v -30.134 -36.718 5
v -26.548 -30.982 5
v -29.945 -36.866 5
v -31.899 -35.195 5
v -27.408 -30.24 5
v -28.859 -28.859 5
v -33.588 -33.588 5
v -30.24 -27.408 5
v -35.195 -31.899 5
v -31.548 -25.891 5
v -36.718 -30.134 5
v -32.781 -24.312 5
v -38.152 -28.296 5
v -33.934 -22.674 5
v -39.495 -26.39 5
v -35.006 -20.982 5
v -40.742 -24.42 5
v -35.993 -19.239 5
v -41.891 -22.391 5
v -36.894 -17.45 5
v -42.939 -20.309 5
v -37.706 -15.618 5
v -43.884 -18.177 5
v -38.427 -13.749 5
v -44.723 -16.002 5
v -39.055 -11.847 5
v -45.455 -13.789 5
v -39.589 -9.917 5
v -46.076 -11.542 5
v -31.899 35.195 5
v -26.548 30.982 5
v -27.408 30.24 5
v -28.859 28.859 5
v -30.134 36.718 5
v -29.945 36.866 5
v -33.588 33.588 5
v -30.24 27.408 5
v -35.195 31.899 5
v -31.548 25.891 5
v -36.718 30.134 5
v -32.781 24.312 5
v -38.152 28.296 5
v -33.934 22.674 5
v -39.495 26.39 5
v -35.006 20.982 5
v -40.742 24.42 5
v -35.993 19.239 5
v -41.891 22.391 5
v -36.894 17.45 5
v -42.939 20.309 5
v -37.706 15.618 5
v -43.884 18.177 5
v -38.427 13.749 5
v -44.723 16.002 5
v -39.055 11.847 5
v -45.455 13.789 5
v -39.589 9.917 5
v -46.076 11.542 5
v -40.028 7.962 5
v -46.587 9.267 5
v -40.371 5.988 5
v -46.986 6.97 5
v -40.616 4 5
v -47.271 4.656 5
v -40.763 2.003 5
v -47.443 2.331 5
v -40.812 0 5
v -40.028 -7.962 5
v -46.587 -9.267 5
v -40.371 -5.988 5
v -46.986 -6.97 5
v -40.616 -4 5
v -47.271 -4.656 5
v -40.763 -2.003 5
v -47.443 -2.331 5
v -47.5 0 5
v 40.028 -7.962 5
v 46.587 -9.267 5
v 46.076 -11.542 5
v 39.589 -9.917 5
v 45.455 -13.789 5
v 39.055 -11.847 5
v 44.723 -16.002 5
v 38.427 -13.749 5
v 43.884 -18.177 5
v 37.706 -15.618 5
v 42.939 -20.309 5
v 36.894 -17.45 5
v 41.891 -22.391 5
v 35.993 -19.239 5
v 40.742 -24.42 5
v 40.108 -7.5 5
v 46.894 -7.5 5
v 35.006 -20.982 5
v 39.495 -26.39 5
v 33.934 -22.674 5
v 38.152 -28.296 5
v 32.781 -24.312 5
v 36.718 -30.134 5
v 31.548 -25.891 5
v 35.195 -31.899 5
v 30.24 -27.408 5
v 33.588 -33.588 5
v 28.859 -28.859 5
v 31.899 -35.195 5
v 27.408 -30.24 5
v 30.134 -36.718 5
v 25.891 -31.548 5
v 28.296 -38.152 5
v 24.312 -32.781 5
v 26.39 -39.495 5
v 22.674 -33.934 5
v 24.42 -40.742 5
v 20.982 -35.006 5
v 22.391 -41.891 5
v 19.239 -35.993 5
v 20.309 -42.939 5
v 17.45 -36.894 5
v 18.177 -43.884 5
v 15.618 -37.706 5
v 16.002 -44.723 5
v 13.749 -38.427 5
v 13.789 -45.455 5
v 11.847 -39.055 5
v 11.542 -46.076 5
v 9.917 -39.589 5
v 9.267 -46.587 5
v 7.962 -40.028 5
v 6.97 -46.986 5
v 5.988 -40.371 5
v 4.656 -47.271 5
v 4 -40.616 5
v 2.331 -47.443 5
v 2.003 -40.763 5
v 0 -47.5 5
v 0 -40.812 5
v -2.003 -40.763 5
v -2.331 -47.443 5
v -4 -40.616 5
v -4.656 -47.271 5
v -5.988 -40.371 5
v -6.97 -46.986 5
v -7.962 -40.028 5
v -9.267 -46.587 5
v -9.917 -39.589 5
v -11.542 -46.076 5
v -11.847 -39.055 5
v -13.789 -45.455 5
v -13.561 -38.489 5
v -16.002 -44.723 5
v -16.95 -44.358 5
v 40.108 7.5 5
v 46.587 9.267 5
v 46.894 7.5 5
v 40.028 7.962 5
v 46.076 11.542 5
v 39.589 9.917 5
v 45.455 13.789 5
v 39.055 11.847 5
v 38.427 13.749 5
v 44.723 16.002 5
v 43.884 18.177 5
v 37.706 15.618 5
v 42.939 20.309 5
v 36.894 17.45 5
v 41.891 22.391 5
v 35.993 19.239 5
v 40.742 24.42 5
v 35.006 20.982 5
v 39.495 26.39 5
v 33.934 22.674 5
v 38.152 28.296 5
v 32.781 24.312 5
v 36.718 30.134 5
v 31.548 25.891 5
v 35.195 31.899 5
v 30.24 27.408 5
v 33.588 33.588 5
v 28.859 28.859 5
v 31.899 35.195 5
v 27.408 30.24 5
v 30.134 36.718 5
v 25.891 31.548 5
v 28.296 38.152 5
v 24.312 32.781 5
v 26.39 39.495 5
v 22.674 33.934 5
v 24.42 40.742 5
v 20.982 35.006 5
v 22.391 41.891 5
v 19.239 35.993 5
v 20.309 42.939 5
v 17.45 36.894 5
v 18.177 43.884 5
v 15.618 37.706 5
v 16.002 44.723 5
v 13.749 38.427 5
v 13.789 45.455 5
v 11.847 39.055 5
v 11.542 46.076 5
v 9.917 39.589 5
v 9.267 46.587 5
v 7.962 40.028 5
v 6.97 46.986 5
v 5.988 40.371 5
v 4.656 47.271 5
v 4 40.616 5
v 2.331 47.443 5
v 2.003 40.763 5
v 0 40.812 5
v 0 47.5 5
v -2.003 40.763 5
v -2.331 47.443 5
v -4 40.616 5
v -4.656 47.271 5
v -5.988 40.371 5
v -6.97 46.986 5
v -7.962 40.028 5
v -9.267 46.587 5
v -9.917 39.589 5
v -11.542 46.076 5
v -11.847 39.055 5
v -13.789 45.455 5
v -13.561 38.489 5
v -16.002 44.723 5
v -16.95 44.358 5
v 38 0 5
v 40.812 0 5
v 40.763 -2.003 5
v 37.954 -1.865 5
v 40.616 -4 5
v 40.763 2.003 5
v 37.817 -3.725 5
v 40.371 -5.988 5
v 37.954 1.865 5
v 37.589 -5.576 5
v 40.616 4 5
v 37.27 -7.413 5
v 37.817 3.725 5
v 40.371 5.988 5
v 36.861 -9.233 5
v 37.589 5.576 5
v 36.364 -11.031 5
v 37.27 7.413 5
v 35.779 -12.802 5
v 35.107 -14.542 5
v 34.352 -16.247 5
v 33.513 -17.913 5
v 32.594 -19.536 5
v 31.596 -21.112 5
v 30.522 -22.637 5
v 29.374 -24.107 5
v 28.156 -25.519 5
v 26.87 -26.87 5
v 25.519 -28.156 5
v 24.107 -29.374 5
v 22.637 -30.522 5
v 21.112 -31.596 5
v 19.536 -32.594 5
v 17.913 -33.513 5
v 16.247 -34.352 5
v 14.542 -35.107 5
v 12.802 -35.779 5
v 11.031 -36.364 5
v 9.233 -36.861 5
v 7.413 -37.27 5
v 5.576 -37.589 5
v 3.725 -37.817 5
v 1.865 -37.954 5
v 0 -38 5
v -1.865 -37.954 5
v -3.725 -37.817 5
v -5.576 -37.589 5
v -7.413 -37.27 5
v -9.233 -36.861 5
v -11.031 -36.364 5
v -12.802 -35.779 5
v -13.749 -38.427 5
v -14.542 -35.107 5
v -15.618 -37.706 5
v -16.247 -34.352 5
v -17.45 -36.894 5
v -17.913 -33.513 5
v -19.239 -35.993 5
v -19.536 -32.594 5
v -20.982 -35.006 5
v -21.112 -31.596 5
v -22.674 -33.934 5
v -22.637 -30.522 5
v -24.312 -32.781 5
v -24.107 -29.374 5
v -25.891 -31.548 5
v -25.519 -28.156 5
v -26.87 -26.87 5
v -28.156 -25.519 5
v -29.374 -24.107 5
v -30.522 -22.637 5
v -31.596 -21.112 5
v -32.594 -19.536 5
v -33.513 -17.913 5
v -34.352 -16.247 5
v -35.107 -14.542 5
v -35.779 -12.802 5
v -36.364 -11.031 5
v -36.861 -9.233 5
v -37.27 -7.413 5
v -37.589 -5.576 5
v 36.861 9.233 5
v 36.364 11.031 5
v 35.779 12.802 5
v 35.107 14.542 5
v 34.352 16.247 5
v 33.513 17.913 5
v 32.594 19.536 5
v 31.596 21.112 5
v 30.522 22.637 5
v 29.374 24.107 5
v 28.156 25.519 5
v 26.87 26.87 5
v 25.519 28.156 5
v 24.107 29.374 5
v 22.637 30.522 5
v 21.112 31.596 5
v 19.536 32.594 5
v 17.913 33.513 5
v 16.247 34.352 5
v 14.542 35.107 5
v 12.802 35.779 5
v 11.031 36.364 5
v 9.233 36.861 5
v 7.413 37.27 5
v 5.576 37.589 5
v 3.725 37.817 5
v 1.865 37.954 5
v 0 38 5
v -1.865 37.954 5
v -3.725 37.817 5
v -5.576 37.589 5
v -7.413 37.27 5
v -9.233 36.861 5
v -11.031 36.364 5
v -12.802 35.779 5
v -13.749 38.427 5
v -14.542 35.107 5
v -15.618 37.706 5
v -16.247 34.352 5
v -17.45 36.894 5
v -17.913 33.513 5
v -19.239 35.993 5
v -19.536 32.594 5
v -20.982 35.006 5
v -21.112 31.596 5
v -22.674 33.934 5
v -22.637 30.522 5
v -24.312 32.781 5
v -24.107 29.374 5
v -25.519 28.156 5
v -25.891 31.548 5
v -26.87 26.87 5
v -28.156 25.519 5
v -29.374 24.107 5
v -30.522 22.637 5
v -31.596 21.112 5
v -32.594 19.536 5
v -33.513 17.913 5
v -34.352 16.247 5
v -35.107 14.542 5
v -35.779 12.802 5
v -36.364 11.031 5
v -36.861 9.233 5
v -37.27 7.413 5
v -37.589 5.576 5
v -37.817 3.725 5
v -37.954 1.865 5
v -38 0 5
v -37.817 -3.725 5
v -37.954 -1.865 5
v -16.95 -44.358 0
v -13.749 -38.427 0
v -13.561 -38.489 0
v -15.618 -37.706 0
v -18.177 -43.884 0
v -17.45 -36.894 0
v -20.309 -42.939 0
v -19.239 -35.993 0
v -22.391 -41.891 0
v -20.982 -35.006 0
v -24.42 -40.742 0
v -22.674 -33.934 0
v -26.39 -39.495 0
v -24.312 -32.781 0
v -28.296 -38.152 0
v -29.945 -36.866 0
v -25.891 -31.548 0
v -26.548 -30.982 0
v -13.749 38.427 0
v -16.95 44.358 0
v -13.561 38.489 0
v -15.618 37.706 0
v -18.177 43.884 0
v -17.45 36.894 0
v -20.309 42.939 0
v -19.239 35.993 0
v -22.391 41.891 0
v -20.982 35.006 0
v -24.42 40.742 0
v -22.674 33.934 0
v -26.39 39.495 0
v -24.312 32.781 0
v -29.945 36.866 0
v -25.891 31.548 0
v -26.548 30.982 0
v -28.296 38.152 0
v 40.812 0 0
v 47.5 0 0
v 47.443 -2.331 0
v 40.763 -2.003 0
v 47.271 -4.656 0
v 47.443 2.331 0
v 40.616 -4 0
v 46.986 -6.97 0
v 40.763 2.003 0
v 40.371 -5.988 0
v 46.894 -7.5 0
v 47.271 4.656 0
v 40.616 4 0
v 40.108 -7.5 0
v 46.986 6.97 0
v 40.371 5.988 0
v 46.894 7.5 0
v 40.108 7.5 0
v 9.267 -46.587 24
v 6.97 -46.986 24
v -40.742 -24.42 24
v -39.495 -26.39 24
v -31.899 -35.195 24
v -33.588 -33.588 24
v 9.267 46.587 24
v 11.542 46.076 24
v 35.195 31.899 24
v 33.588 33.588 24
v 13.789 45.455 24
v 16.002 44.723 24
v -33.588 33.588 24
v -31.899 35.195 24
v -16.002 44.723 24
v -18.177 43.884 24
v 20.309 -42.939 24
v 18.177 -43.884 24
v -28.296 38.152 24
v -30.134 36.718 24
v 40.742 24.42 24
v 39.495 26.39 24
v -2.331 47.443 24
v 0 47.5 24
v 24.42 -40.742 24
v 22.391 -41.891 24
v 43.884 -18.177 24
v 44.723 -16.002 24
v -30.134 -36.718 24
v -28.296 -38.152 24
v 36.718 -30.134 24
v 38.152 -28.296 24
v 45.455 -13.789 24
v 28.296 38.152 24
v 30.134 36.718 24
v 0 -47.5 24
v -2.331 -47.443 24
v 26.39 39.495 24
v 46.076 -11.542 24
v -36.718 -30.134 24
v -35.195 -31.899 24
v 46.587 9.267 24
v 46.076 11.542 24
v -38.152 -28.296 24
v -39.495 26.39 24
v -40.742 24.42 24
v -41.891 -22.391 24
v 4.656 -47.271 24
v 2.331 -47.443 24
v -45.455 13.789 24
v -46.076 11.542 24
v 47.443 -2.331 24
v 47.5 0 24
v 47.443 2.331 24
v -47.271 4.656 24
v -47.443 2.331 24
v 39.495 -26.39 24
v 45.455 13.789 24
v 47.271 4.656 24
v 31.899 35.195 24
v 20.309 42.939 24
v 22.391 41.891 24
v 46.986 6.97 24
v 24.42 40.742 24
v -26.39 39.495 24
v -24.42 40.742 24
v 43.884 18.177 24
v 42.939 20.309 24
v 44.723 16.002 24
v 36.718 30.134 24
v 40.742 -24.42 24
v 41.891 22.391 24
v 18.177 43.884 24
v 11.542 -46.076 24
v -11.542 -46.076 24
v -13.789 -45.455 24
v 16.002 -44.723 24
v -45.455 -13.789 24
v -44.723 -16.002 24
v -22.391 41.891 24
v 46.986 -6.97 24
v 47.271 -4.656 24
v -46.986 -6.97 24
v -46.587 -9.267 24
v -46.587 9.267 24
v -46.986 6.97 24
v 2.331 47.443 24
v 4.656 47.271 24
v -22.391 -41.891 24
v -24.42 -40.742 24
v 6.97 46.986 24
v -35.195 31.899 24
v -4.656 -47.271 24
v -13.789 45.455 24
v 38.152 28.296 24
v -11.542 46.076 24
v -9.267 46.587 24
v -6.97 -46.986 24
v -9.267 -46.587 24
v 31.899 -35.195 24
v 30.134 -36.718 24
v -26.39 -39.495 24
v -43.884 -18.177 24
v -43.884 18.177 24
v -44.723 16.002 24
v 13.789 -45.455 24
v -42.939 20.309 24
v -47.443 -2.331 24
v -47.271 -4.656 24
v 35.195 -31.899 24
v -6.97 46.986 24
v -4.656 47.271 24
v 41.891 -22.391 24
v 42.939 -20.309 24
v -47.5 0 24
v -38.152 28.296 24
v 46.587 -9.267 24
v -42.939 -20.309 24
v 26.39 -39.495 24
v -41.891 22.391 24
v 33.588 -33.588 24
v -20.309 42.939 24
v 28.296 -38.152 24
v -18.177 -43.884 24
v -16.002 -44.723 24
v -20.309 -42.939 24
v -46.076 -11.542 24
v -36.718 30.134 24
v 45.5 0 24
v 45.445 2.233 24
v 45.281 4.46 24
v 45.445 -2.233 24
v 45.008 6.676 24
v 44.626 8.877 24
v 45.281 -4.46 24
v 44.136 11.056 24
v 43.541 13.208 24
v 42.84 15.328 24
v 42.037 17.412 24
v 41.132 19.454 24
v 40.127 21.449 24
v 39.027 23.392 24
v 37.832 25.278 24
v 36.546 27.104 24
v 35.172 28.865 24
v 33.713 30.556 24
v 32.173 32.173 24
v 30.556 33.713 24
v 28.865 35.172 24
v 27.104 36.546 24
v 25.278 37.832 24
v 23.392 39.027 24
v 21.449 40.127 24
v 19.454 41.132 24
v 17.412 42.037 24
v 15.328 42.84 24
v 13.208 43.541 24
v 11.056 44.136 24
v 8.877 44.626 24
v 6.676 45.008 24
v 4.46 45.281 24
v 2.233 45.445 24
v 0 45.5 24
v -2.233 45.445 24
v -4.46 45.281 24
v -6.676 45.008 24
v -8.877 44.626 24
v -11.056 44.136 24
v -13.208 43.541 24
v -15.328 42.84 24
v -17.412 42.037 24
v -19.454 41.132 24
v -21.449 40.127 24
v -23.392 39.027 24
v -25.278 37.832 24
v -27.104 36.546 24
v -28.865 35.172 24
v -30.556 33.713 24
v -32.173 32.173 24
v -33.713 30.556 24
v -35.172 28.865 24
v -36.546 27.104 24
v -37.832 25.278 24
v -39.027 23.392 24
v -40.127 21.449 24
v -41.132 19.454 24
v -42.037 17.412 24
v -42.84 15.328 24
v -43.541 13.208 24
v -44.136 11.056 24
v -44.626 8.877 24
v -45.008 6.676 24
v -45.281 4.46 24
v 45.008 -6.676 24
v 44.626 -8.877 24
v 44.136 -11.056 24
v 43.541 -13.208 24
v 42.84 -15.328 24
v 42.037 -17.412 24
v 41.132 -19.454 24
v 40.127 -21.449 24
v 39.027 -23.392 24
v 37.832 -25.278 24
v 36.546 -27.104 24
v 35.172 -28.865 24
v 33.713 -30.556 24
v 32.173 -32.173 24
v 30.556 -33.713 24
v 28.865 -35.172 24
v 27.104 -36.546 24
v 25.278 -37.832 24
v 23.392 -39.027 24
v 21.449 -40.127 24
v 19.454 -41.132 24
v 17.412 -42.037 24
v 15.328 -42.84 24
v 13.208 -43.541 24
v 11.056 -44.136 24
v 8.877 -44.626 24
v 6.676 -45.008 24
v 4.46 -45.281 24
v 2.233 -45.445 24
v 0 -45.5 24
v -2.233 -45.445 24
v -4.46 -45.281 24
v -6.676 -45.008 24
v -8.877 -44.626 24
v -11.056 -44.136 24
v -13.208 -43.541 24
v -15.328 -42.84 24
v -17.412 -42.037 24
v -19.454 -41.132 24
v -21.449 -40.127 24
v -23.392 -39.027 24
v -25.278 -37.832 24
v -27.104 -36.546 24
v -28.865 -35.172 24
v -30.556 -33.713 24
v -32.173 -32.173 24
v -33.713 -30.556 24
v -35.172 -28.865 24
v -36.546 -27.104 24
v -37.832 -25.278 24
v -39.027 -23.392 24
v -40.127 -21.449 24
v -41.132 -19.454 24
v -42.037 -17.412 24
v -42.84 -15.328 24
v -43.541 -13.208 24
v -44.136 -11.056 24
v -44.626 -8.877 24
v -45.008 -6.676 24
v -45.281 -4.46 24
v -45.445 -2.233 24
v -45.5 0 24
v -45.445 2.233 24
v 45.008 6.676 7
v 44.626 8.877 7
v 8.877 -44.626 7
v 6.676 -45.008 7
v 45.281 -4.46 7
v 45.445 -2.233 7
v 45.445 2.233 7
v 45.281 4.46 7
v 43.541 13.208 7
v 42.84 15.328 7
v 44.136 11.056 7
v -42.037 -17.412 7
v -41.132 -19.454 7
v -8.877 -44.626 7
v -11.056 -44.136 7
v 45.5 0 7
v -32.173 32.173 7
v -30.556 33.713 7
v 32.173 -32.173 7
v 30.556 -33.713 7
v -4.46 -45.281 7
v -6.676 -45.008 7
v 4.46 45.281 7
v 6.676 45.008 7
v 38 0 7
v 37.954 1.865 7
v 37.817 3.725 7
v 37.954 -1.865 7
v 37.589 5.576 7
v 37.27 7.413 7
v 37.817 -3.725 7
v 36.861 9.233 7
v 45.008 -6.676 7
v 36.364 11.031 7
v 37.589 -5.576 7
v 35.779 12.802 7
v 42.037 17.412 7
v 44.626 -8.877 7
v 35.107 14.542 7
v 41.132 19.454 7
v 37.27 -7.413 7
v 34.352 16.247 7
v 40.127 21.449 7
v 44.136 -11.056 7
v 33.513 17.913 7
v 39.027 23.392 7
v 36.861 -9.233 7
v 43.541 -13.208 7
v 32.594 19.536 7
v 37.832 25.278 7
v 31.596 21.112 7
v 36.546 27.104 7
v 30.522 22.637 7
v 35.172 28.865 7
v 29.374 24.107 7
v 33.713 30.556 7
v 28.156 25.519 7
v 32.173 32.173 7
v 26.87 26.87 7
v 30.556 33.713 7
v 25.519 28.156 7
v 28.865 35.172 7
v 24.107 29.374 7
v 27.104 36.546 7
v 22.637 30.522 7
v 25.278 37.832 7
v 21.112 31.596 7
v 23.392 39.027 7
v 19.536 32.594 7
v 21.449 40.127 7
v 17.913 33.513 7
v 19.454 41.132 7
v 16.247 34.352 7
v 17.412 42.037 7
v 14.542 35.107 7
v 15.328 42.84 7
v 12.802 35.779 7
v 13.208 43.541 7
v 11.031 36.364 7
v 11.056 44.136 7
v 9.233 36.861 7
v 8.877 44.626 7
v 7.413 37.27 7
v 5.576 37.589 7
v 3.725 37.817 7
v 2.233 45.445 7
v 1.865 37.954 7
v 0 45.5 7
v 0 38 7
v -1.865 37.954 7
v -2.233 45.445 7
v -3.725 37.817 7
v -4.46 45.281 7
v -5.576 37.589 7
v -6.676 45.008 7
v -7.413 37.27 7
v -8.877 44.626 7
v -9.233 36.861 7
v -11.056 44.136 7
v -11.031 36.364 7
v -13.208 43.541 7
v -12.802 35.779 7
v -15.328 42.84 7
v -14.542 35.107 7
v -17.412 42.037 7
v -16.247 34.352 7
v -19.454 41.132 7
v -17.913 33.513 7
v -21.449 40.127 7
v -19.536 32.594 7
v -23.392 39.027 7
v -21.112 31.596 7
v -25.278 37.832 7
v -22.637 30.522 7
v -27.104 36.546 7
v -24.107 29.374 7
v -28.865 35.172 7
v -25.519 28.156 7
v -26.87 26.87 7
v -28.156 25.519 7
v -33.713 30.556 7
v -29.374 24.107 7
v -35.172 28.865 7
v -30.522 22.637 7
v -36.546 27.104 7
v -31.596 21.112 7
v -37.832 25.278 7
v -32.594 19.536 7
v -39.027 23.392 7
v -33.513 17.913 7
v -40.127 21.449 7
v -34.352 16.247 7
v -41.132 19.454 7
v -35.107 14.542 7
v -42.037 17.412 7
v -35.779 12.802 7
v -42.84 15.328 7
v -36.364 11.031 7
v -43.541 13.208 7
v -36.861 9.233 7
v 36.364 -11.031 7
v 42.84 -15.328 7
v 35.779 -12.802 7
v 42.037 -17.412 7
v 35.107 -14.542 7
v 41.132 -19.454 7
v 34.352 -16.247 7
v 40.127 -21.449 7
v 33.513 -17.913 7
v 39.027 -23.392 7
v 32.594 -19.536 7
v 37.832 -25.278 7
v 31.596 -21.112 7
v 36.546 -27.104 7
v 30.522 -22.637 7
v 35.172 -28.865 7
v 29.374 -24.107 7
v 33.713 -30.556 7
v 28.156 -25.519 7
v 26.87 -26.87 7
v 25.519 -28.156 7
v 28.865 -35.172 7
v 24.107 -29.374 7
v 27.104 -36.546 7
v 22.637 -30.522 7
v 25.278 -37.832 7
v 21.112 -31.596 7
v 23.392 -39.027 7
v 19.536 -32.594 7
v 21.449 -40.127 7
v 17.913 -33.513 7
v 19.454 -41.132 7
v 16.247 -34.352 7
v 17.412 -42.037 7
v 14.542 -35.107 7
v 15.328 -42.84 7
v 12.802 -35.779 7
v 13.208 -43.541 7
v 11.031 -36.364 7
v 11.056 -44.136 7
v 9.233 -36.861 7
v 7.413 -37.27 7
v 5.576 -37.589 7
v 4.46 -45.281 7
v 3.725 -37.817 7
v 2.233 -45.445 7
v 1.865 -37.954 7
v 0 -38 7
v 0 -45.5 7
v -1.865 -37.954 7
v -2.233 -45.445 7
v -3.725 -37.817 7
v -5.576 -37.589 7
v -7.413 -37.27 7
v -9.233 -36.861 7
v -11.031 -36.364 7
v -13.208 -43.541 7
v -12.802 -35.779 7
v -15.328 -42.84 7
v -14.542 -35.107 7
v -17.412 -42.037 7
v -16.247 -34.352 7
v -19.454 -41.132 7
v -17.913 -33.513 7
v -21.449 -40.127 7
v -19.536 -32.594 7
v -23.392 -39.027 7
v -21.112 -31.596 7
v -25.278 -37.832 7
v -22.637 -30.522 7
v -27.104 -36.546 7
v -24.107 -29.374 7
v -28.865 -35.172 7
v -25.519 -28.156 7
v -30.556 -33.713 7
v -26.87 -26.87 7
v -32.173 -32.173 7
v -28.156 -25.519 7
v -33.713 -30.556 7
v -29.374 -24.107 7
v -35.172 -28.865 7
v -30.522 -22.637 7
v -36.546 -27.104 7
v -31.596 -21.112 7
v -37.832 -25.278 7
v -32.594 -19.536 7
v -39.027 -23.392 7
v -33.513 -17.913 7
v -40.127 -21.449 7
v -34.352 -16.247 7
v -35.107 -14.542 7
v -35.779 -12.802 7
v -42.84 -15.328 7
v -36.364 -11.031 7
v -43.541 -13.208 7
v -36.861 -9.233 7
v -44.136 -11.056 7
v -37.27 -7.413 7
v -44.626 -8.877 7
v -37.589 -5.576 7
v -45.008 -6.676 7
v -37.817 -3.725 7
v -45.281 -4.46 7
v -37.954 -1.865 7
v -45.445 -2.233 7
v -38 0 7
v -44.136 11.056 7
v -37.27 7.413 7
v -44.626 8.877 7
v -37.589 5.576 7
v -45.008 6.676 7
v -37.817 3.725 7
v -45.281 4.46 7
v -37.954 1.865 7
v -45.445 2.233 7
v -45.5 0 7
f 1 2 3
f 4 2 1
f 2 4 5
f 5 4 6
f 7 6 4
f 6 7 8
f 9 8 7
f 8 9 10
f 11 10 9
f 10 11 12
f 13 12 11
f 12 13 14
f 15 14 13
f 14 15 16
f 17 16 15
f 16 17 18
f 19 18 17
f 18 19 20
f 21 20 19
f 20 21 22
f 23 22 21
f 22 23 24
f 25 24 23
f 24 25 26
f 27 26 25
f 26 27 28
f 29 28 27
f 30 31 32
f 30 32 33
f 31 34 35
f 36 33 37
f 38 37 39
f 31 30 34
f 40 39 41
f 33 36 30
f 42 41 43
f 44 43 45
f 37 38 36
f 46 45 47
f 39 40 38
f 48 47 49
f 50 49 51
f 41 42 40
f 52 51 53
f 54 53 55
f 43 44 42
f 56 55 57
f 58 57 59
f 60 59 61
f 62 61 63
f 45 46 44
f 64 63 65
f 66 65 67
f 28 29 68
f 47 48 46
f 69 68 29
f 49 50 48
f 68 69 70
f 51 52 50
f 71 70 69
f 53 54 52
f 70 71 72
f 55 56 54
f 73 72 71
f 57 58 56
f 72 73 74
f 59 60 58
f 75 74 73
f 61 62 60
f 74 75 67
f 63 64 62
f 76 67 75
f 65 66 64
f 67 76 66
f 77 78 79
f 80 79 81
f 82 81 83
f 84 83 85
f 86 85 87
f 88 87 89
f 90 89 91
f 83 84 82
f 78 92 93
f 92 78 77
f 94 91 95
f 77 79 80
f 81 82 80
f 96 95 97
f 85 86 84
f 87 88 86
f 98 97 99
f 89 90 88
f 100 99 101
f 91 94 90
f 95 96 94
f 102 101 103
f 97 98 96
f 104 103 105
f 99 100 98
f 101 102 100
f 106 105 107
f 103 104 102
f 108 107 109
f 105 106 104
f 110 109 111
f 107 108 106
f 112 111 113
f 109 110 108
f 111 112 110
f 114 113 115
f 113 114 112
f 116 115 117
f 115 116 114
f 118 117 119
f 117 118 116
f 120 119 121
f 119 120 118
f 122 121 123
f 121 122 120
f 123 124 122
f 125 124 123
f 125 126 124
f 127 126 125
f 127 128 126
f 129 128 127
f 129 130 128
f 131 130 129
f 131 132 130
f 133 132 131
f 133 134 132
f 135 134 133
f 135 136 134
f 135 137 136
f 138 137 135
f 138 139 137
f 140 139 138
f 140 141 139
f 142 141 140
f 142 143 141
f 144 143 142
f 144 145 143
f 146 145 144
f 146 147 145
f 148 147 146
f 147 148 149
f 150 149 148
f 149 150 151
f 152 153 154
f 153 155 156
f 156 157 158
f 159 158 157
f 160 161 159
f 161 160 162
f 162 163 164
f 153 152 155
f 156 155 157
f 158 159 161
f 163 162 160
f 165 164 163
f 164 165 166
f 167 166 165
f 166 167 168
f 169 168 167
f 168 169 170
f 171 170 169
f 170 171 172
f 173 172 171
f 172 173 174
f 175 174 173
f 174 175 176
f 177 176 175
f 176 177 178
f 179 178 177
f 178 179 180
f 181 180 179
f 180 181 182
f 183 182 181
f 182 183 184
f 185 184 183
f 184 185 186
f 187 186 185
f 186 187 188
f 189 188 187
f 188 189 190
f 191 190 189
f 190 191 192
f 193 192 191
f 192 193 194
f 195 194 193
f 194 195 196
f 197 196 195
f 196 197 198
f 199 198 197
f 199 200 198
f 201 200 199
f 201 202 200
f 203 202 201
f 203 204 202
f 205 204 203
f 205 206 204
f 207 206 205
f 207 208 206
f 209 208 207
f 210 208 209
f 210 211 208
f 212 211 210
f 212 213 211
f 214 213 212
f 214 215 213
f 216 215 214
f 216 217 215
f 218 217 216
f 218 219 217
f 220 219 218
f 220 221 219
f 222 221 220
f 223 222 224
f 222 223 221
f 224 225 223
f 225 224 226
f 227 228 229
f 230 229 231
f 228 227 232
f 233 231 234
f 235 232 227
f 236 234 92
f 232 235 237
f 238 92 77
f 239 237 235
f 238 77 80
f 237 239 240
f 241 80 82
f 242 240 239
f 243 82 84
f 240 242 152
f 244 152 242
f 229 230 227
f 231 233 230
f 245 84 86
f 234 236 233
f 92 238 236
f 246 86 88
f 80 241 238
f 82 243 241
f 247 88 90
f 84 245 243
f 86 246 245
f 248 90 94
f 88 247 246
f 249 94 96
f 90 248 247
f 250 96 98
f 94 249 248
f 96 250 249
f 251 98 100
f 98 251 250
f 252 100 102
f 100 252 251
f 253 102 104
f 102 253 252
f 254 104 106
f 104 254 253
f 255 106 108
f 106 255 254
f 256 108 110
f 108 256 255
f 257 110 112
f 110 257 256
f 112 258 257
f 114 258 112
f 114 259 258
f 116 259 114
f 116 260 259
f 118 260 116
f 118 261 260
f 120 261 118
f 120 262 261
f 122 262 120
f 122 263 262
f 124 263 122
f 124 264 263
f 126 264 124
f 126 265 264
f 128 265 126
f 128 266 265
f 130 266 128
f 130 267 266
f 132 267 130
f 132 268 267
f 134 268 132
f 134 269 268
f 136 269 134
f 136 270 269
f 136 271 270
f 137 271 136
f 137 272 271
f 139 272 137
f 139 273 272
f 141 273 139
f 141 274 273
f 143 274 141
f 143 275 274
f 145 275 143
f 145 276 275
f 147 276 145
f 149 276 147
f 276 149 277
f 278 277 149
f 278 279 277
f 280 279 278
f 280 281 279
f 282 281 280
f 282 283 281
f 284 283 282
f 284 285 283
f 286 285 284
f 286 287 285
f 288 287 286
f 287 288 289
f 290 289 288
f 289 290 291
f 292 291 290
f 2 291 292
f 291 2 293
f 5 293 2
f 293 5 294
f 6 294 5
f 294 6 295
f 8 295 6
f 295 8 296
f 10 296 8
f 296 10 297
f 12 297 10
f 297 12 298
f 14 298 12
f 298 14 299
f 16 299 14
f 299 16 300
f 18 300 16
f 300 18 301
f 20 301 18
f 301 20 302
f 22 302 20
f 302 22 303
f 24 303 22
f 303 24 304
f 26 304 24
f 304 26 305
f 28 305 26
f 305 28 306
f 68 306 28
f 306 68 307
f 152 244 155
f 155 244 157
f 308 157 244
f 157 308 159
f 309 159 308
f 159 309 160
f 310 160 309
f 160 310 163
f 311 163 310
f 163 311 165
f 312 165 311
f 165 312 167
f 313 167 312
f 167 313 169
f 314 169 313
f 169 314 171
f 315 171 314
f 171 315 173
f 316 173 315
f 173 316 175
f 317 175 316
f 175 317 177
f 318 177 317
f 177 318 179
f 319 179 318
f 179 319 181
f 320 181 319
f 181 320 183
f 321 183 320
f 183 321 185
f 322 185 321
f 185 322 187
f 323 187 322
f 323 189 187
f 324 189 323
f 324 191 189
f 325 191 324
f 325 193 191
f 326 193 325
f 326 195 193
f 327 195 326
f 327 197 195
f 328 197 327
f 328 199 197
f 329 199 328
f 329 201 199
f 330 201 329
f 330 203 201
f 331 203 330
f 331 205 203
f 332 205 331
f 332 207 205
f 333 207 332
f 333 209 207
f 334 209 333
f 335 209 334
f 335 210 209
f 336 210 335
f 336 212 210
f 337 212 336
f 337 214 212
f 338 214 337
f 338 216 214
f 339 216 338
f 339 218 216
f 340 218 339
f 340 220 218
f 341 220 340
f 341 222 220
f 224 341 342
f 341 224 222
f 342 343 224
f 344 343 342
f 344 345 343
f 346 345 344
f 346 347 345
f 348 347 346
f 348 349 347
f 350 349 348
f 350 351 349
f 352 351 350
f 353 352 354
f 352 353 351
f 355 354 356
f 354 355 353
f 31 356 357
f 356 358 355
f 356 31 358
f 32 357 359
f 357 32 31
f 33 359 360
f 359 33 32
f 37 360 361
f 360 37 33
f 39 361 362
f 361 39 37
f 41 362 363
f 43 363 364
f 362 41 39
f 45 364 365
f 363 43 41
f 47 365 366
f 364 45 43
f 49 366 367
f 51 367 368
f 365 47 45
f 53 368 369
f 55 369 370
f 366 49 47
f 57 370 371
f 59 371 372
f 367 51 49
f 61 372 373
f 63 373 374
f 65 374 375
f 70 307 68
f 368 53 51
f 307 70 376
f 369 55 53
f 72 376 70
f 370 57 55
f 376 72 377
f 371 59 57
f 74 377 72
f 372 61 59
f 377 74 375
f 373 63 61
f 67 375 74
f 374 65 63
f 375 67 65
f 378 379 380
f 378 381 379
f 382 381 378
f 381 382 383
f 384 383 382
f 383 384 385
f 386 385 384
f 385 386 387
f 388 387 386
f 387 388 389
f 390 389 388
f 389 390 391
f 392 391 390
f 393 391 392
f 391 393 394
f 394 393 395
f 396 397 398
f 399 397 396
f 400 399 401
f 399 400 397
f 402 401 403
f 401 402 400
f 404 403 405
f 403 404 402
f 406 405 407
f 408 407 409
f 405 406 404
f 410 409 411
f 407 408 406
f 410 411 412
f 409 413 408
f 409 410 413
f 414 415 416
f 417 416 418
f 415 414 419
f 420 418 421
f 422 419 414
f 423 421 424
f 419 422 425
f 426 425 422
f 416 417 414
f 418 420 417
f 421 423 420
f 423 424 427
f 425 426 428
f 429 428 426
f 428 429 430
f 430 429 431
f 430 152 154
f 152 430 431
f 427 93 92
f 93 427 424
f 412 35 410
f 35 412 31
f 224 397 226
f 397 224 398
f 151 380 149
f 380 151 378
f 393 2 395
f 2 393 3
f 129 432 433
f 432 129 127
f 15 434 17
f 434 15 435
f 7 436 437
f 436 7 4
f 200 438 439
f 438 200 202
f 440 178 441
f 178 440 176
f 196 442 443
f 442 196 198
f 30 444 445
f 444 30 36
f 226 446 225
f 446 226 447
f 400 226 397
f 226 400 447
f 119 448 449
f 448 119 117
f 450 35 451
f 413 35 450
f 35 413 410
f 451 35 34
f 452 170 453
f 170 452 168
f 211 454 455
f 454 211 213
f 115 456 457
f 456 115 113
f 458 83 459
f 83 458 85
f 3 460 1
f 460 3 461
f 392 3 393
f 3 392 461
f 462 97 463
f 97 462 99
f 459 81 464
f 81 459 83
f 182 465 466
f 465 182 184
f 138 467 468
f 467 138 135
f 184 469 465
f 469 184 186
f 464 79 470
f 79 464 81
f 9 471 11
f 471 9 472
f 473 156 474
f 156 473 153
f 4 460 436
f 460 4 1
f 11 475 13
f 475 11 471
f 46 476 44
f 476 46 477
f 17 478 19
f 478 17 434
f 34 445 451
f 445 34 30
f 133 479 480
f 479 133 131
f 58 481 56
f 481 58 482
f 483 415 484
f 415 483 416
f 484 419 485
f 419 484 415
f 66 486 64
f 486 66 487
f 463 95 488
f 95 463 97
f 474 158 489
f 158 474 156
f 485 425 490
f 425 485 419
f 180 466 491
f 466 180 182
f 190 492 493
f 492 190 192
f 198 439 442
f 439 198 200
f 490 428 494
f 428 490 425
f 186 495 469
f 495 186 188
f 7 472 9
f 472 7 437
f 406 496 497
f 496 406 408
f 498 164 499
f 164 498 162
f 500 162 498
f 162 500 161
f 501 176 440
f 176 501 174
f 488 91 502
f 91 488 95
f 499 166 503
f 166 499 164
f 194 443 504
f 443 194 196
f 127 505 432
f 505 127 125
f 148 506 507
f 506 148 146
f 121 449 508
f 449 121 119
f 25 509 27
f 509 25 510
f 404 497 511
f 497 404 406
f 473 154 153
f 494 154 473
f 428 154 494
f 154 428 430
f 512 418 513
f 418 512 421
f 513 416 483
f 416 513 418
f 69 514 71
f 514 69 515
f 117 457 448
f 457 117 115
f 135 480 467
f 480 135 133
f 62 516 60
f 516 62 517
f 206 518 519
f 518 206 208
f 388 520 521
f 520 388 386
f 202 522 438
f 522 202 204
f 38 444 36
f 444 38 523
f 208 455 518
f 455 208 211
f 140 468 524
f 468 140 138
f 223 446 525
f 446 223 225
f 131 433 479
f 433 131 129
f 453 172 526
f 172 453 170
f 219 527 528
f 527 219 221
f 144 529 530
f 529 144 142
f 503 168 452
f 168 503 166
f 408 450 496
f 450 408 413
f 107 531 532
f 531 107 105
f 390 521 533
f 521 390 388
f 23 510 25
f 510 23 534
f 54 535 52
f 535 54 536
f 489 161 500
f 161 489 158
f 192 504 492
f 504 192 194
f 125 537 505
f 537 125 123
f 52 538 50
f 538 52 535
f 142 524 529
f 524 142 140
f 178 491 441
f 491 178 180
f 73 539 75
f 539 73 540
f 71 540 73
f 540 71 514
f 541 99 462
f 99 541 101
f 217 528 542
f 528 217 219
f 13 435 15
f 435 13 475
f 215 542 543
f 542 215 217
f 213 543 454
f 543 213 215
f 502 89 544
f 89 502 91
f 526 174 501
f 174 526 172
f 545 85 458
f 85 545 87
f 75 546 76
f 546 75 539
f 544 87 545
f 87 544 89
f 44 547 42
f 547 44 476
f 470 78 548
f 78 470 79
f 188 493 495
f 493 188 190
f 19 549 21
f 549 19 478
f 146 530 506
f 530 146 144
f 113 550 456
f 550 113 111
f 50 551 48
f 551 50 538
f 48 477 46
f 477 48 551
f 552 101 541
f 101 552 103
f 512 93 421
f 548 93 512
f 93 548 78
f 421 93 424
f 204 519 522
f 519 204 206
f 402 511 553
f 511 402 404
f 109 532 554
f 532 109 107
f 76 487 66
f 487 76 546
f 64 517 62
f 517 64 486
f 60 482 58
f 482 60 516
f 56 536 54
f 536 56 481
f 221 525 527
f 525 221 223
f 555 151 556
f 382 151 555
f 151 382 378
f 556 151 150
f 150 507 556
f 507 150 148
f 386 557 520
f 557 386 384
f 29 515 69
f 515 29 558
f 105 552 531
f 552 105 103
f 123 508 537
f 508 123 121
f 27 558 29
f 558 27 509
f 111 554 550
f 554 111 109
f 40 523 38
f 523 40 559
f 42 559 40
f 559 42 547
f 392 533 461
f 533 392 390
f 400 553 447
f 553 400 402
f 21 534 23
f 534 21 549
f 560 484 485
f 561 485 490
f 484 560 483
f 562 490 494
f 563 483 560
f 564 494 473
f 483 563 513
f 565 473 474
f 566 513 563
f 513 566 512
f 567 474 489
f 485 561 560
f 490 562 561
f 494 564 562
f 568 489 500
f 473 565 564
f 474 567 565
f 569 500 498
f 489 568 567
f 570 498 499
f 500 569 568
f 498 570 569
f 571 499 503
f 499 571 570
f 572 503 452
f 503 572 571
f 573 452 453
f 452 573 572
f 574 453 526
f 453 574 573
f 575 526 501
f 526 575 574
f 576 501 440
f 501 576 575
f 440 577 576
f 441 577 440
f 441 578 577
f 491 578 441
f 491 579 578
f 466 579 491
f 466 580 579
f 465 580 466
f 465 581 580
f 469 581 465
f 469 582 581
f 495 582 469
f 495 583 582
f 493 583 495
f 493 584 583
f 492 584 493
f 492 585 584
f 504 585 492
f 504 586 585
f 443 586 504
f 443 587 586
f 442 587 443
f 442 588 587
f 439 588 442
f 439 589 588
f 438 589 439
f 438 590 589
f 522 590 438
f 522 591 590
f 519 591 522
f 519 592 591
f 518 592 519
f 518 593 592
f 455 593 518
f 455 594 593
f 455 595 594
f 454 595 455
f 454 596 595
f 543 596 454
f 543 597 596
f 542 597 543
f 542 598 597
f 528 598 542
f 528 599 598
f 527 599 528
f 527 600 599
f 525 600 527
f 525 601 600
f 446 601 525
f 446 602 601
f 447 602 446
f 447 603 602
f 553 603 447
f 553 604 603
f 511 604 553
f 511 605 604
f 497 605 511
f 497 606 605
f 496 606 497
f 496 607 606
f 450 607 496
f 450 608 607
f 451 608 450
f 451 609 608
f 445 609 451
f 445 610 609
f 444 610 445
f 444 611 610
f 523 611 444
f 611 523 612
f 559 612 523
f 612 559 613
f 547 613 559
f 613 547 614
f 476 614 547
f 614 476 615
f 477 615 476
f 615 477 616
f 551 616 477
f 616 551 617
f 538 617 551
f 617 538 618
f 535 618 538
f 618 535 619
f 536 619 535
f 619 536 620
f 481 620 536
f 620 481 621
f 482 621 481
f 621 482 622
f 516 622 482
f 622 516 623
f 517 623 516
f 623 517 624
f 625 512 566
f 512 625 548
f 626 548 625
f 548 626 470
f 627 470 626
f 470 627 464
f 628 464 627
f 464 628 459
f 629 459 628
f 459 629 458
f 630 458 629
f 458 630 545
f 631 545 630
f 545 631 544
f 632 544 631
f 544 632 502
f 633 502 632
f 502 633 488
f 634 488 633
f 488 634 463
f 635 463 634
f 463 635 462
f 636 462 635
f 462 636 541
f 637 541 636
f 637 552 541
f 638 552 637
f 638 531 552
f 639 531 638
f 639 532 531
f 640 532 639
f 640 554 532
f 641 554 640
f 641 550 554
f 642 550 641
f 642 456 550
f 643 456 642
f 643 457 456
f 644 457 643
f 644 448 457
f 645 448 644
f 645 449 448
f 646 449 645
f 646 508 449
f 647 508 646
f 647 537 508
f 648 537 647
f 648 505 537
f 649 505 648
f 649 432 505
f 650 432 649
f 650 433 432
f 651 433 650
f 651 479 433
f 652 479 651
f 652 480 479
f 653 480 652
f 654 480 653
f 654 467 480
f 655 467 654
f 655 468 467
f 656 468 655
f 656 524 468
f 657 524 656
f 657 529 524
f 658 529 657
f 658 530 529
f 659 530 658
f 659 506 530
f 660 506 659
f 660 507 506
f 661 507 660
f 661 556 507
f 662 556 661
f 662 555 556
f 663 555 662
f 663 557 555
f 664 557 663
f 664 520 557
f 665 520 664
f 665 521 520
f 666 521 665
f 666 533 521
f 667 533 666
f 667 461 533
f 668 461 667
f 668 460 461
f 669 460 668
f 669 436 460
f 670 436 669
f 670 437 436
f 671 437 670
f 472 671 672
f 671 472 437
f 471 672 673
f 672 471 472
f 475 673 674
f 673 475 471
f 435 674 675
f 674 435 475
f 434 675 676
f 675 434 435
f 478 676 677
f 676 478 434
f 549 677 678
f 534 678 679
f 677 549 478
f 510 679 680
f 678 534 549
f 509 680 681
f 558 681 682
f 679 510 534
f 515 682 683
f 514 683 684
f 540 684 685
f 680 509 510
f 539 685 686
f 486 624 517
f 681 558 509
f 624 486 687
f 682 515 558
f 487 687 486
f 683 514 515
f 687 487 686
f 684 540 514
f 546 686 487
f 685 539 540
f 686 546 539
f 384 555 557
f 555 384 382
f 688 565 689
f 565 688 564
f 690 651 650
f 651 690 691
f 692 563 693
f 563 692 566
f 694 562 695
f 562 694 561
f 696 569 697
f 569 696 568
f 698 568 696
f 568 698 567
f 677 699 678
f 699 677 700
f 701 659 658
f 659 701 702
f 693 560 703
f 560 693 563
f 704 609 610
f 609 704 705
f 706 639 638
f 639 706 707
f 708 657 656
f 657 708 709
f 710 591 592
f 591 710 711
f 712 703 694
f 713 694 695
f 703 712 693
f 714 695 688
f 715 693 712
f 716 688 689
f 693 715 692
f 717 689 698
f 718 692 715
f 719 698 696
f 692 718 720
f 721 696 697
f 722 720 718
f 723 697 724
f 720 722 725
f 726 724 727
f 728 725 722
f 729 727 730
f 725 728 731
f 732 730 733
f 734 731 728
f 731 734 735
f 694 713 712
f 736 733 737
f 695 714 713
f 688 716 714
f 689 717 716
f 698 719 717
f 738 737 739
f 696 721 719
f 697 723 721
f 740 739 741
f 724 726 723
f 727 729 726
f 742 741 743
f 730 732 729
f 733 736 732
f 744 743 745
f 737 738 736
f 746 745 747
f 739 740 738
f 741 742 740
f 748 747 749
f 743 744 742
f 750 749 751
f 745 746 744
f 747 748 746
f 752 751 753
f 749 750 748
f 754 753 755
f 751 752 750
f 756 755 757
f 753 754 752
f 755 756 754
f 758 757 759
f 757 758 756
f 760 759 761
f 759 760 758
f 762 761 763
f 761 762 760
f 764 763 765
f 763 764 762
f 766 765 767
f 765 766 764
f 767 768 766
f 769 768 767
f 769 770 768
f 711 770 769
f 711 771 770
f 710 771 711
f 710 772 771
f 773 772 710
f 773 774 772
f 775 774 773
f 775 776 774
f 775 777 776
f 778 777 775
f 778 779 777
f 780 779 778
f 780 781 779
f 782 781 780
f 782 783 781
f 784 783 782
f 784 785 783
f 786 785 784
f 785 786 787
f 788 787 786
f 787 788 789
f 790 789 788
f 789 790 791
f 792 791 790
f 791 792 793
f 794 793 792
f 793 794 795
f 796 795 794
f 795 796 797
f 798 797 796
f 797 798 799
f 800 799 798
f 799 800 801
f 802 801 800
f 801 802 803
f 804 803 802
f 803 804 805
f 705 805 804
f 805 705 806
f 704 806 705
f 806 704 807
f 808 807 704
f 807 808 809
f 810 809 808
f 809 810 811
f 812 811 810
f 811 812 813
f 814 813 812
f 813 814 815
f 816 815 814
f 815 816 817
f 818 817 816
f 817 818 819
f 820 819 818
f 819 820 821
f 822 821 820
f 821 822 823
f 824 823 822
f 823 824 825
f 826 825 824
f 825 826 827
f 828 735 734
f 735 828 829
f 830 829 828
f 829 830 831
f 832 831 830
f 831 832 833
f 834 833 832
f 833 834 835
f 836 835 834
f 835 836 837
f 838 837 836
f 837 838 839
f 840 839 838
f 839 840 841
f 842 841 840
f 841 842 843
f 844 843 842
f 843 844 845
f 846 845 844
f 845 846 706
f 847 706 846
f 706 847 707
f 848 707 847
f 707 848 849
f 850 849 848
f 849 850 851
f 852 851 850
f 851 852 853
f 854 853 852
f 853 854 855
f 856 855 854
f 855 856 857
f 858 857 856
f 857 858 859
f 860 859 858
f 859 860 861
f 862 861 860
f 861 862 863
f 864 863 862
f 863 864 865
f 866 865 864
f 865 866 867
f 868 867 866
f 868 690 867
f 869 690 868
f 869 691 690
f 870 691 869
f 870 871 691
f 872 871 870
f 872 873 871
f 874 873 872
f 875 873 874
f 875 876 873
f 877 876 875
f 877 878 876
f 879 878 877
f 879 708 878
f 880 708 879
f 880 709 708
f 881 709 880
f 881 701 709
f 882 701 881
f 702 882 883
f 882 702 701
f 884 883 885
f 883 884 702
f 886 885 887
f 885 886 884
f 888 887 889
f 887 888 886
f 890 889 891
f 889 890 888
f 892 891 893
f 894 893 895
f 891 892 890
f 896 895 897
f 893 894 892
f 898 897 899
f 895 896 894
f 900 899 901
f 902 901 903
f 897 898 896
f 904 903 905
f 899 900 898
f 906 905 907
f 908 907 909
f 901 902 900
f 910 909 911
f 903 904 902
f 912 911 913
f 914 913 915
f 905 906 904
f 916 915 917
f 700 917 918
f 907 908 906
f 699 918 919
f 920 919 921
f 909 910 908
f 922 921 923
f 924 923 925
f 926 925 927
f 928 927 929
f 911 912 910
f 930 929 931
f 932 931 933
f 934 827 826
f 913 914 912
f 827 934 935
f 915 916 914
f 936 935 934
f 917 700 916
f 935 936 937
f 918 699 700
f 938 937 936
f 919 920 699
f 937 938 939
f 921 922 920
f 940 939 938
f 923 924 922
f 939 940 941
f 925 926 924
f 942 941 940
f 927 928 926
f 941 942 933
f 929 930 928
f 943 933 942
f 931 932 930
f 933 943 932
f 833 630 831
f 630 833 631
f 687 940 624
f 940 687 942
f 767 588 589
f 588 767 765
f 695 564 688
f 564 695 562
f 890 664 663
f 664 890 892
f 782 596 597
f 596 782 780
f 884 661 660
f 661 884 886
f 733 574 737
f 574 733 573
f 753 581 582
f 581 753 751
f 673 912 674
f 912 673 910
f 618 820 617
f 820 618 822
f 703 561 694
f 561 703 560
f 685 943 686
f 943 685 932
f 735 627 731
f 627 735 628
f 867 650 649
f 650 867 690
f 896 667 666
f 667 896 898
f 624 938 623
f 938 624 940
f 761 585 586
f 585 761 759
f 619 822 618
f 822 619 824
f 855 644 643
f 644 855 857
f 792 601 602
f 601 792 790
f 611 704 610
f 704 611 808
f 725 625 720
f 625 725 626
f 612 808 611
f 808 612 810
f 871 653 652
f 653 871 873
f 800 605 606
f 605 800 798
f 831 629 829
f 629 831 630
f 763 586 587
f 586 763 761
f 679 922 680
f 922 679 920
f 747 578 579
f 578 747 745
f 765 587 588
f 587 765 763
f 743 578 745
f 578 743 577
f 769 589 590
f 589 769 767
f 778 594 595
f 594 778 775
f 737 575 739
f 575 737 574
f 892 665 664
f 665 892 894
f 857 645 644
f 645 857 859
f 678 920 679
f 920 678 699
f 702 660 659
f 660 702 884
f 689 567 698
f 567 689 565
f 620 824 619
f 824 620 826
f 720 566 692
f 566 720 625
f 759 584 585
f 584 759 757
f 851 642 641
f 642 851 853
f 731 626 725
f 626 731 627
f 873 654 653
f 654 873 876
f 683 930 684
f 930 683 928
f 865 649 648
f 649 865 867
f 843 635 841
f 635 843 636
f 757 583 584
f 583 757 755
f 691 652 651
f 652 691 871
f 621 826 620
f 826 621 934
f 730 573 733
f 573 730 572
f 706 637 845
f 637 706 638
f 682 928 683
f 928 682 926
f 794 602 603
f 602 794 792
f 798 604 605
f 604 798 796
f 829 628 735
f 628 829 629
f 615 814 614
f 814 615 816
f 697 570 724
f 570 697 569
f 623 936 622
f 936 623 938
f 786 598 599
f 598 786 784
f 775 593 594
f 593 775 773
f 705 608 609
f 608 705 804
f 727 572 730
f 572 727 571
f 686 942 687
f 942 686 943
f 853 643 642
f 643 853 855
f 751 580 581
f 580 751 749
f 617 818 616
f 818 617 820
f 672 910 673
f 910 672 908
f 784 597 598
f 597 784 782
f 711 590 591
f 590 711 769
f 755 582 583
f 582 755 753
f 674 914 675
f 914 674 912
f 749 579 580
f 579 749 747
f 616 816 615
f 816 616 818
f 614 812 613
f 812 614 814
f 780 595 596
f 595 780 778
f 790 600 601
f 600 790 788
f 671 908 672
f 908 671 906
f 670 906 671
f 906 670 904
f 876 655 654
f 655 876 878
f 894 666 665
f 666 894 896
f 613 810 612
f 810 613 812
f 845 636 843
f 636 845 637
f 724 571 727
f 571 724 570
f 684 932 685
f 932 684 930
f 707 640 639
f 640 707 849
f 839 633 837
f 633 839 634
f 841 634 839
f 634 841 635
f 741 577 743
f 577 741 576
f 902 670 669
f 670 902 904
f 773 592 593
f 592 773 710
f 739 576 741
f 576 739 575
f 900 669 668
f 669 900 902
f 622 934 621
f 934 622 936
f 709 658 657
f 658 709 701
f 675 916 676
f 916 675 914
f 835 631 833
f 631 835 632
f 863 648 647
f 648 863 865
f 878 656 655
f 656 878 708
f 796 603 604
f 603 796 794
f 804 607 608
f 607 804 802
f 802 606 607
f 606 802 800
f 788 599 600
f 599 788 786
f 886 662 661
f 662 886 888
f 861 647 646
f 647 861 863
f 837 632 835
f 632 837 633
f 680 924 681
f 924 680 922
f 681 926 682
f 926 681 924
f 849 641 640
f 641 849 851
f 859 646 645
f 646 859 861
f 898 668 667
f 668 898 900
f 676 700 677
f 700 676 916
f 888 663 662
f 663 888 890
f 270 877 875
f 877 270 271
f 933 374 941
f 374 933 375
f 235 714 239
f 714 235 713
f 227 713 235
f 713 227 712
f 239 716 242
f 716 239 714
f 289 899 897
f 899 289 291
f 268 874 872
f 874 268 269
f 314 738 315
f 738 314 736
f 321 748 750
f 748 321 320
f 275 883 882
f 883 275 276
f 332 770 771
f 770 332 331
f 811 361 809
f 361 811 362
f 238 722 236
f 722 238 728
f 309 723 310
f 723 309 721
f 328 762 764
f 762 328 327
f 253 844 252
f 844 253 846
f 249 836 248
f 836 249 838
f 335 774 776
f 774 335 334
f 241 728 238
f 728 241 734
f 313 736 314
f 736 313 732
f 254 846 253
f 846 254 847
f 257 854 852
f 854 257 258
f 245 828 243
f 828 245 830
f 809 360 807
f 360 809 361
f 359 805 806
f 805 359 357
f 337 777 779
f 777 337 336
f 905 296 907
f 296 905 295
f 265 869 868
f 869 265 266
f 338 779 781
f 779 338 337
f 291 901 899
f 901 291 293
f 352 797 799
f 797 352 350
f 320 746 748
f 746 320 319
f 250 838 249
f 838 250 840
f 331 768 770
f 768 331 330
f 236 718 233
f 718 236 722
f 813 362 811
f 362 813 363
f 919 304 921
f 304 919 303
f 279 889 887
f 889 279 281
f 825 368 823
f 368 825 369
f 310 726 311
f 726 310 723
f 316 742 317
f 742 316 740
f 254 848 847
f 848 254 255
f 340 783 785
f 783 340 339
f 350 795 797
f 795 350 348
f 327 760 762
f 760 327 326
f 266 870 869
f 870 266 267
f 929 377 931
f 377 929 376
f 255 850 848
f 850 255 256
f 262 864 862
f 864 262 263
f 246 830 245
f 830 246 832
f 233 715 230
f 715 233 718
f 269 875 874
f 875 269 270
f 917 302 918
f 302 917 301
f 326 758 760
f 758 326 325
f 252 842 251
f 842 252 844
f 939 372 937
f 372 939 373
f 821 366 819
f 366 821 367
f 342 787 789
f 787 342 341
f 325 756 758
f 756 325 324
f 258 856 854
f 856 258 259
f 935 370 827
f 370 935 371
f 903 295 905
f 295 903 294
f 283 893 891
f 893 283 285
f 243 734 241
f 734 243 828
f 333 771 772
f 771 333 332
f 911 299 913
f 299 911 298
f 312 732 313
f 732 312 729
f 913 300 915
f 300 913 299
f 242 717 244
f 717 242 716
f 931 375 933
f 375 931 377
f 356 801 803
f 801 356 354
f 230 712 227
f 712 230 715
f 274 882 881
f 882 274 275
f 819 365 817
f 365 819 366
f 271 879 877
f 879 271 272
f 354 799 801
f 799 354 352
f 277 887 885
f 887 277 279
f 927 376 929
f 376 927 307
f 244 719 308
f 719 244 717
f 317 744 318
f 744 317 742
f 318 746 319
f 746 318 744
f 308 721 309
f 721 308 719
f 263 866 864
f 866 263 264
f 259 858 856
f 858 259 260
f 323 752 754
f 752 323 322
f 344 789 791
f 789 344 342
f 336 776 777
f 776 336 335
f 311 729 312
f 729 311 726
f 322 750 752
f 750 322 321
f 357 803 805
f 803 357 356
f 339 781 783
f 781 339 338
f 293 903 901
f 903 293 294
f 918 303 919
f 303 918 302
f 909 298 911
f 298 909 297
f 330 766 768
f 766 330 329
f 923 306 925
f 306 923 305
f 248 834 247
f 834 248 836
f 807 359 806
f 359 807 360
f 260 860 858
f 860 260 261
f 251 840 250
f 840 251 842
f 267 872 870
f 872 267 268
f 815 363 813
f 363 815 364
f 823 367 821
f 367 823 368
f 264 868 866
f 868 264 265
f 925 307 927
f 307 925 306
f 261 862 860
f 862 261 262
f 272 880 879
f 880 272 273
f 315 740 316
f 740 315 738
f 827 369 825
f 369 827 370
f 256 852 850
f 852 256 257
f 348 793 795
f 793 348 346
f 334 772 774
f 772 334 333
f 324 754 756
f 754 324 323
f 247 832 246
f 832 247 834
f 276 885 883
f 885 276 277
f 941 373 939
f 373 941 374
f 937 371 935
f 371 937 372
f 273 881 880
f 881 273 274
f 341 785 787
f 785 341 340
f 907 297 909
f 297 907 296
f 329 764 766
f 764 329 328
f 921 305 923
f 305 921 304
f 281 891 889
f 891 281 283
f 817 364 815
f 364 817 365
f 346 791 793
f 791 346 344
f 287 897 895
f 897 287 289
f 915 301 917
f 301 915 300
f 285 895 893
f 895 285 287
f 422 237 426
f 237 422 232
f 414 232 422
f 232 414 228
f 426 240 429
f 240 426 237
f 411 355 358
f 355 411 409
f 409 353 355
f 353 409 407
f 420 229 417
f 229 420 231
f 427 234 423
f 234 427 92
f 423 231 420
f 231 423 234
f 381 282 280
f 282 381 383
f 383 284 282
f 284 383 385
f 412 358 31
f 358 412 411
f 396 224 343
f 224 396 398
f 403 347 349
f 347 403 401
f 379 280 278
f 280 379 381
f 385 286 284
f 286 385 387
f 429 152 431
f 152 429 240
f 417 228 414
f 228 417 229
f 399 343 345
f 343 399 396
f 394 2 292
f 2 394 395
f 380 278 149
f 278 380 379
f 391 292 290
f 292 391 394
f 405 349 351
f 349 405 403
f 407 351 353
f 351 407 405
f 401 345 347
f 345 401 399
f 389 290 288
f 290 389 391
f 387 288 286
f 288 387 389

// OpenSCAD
$fn= $preview ? 32 : 128;

// ===========================================================================
// EDITABLE VALUES
// ===========================================================================

lidDiam = 91;           // a bit bigger than 29.4 (measured circum) / pi
lidDepth = 19;          // height of lid receptacle
glassWidth = 7.5;       // width of glass in jar
thickness = 2;          // thickness of stand
standHeight = 5;        // height of receptacle off ground
standWidth = 15;        // width of each piece of tripod in stand
numFeet = 3;            // number of feet in stand

// ===========================================================================
// CALCULATED AND OTHER VALUES
// ===========================================================================

intersection(){
    difference(){

        union(){
            translate([0, 0, standHeight]) cylinder(d = lidDiam + 2*thickness, h = lidDepth, center=false);
            for(i = [0 : 360/numFeet : 359.9]){
                rotate([0, 0, i]){
                    translate([0, -standWidth/2, 0]){
                        cube([lidDiam + thickness, standWidth, standHeight], center=false);
                    }
                }
            }
        }

        translate([0, 0, standHeight + thickness]) cylinder(d = lidDiam, h = lidDepth + 2*standHeight + 1, center=false);
        translate([0, 0, -.5]) cylinder(d = lidDiam - 2*glassWidth, h = lidDepth + 2*standHeight + 1, center=false);
        translate([0, 0, -.5]) cylinder(d = lidDiam - 1.25*glassWidth, h = standHeight + .5, center=false);
    }

    cylinder(d = lidDiam + 2*thickness, h = lidDepth + standHeight, center=false);
}
